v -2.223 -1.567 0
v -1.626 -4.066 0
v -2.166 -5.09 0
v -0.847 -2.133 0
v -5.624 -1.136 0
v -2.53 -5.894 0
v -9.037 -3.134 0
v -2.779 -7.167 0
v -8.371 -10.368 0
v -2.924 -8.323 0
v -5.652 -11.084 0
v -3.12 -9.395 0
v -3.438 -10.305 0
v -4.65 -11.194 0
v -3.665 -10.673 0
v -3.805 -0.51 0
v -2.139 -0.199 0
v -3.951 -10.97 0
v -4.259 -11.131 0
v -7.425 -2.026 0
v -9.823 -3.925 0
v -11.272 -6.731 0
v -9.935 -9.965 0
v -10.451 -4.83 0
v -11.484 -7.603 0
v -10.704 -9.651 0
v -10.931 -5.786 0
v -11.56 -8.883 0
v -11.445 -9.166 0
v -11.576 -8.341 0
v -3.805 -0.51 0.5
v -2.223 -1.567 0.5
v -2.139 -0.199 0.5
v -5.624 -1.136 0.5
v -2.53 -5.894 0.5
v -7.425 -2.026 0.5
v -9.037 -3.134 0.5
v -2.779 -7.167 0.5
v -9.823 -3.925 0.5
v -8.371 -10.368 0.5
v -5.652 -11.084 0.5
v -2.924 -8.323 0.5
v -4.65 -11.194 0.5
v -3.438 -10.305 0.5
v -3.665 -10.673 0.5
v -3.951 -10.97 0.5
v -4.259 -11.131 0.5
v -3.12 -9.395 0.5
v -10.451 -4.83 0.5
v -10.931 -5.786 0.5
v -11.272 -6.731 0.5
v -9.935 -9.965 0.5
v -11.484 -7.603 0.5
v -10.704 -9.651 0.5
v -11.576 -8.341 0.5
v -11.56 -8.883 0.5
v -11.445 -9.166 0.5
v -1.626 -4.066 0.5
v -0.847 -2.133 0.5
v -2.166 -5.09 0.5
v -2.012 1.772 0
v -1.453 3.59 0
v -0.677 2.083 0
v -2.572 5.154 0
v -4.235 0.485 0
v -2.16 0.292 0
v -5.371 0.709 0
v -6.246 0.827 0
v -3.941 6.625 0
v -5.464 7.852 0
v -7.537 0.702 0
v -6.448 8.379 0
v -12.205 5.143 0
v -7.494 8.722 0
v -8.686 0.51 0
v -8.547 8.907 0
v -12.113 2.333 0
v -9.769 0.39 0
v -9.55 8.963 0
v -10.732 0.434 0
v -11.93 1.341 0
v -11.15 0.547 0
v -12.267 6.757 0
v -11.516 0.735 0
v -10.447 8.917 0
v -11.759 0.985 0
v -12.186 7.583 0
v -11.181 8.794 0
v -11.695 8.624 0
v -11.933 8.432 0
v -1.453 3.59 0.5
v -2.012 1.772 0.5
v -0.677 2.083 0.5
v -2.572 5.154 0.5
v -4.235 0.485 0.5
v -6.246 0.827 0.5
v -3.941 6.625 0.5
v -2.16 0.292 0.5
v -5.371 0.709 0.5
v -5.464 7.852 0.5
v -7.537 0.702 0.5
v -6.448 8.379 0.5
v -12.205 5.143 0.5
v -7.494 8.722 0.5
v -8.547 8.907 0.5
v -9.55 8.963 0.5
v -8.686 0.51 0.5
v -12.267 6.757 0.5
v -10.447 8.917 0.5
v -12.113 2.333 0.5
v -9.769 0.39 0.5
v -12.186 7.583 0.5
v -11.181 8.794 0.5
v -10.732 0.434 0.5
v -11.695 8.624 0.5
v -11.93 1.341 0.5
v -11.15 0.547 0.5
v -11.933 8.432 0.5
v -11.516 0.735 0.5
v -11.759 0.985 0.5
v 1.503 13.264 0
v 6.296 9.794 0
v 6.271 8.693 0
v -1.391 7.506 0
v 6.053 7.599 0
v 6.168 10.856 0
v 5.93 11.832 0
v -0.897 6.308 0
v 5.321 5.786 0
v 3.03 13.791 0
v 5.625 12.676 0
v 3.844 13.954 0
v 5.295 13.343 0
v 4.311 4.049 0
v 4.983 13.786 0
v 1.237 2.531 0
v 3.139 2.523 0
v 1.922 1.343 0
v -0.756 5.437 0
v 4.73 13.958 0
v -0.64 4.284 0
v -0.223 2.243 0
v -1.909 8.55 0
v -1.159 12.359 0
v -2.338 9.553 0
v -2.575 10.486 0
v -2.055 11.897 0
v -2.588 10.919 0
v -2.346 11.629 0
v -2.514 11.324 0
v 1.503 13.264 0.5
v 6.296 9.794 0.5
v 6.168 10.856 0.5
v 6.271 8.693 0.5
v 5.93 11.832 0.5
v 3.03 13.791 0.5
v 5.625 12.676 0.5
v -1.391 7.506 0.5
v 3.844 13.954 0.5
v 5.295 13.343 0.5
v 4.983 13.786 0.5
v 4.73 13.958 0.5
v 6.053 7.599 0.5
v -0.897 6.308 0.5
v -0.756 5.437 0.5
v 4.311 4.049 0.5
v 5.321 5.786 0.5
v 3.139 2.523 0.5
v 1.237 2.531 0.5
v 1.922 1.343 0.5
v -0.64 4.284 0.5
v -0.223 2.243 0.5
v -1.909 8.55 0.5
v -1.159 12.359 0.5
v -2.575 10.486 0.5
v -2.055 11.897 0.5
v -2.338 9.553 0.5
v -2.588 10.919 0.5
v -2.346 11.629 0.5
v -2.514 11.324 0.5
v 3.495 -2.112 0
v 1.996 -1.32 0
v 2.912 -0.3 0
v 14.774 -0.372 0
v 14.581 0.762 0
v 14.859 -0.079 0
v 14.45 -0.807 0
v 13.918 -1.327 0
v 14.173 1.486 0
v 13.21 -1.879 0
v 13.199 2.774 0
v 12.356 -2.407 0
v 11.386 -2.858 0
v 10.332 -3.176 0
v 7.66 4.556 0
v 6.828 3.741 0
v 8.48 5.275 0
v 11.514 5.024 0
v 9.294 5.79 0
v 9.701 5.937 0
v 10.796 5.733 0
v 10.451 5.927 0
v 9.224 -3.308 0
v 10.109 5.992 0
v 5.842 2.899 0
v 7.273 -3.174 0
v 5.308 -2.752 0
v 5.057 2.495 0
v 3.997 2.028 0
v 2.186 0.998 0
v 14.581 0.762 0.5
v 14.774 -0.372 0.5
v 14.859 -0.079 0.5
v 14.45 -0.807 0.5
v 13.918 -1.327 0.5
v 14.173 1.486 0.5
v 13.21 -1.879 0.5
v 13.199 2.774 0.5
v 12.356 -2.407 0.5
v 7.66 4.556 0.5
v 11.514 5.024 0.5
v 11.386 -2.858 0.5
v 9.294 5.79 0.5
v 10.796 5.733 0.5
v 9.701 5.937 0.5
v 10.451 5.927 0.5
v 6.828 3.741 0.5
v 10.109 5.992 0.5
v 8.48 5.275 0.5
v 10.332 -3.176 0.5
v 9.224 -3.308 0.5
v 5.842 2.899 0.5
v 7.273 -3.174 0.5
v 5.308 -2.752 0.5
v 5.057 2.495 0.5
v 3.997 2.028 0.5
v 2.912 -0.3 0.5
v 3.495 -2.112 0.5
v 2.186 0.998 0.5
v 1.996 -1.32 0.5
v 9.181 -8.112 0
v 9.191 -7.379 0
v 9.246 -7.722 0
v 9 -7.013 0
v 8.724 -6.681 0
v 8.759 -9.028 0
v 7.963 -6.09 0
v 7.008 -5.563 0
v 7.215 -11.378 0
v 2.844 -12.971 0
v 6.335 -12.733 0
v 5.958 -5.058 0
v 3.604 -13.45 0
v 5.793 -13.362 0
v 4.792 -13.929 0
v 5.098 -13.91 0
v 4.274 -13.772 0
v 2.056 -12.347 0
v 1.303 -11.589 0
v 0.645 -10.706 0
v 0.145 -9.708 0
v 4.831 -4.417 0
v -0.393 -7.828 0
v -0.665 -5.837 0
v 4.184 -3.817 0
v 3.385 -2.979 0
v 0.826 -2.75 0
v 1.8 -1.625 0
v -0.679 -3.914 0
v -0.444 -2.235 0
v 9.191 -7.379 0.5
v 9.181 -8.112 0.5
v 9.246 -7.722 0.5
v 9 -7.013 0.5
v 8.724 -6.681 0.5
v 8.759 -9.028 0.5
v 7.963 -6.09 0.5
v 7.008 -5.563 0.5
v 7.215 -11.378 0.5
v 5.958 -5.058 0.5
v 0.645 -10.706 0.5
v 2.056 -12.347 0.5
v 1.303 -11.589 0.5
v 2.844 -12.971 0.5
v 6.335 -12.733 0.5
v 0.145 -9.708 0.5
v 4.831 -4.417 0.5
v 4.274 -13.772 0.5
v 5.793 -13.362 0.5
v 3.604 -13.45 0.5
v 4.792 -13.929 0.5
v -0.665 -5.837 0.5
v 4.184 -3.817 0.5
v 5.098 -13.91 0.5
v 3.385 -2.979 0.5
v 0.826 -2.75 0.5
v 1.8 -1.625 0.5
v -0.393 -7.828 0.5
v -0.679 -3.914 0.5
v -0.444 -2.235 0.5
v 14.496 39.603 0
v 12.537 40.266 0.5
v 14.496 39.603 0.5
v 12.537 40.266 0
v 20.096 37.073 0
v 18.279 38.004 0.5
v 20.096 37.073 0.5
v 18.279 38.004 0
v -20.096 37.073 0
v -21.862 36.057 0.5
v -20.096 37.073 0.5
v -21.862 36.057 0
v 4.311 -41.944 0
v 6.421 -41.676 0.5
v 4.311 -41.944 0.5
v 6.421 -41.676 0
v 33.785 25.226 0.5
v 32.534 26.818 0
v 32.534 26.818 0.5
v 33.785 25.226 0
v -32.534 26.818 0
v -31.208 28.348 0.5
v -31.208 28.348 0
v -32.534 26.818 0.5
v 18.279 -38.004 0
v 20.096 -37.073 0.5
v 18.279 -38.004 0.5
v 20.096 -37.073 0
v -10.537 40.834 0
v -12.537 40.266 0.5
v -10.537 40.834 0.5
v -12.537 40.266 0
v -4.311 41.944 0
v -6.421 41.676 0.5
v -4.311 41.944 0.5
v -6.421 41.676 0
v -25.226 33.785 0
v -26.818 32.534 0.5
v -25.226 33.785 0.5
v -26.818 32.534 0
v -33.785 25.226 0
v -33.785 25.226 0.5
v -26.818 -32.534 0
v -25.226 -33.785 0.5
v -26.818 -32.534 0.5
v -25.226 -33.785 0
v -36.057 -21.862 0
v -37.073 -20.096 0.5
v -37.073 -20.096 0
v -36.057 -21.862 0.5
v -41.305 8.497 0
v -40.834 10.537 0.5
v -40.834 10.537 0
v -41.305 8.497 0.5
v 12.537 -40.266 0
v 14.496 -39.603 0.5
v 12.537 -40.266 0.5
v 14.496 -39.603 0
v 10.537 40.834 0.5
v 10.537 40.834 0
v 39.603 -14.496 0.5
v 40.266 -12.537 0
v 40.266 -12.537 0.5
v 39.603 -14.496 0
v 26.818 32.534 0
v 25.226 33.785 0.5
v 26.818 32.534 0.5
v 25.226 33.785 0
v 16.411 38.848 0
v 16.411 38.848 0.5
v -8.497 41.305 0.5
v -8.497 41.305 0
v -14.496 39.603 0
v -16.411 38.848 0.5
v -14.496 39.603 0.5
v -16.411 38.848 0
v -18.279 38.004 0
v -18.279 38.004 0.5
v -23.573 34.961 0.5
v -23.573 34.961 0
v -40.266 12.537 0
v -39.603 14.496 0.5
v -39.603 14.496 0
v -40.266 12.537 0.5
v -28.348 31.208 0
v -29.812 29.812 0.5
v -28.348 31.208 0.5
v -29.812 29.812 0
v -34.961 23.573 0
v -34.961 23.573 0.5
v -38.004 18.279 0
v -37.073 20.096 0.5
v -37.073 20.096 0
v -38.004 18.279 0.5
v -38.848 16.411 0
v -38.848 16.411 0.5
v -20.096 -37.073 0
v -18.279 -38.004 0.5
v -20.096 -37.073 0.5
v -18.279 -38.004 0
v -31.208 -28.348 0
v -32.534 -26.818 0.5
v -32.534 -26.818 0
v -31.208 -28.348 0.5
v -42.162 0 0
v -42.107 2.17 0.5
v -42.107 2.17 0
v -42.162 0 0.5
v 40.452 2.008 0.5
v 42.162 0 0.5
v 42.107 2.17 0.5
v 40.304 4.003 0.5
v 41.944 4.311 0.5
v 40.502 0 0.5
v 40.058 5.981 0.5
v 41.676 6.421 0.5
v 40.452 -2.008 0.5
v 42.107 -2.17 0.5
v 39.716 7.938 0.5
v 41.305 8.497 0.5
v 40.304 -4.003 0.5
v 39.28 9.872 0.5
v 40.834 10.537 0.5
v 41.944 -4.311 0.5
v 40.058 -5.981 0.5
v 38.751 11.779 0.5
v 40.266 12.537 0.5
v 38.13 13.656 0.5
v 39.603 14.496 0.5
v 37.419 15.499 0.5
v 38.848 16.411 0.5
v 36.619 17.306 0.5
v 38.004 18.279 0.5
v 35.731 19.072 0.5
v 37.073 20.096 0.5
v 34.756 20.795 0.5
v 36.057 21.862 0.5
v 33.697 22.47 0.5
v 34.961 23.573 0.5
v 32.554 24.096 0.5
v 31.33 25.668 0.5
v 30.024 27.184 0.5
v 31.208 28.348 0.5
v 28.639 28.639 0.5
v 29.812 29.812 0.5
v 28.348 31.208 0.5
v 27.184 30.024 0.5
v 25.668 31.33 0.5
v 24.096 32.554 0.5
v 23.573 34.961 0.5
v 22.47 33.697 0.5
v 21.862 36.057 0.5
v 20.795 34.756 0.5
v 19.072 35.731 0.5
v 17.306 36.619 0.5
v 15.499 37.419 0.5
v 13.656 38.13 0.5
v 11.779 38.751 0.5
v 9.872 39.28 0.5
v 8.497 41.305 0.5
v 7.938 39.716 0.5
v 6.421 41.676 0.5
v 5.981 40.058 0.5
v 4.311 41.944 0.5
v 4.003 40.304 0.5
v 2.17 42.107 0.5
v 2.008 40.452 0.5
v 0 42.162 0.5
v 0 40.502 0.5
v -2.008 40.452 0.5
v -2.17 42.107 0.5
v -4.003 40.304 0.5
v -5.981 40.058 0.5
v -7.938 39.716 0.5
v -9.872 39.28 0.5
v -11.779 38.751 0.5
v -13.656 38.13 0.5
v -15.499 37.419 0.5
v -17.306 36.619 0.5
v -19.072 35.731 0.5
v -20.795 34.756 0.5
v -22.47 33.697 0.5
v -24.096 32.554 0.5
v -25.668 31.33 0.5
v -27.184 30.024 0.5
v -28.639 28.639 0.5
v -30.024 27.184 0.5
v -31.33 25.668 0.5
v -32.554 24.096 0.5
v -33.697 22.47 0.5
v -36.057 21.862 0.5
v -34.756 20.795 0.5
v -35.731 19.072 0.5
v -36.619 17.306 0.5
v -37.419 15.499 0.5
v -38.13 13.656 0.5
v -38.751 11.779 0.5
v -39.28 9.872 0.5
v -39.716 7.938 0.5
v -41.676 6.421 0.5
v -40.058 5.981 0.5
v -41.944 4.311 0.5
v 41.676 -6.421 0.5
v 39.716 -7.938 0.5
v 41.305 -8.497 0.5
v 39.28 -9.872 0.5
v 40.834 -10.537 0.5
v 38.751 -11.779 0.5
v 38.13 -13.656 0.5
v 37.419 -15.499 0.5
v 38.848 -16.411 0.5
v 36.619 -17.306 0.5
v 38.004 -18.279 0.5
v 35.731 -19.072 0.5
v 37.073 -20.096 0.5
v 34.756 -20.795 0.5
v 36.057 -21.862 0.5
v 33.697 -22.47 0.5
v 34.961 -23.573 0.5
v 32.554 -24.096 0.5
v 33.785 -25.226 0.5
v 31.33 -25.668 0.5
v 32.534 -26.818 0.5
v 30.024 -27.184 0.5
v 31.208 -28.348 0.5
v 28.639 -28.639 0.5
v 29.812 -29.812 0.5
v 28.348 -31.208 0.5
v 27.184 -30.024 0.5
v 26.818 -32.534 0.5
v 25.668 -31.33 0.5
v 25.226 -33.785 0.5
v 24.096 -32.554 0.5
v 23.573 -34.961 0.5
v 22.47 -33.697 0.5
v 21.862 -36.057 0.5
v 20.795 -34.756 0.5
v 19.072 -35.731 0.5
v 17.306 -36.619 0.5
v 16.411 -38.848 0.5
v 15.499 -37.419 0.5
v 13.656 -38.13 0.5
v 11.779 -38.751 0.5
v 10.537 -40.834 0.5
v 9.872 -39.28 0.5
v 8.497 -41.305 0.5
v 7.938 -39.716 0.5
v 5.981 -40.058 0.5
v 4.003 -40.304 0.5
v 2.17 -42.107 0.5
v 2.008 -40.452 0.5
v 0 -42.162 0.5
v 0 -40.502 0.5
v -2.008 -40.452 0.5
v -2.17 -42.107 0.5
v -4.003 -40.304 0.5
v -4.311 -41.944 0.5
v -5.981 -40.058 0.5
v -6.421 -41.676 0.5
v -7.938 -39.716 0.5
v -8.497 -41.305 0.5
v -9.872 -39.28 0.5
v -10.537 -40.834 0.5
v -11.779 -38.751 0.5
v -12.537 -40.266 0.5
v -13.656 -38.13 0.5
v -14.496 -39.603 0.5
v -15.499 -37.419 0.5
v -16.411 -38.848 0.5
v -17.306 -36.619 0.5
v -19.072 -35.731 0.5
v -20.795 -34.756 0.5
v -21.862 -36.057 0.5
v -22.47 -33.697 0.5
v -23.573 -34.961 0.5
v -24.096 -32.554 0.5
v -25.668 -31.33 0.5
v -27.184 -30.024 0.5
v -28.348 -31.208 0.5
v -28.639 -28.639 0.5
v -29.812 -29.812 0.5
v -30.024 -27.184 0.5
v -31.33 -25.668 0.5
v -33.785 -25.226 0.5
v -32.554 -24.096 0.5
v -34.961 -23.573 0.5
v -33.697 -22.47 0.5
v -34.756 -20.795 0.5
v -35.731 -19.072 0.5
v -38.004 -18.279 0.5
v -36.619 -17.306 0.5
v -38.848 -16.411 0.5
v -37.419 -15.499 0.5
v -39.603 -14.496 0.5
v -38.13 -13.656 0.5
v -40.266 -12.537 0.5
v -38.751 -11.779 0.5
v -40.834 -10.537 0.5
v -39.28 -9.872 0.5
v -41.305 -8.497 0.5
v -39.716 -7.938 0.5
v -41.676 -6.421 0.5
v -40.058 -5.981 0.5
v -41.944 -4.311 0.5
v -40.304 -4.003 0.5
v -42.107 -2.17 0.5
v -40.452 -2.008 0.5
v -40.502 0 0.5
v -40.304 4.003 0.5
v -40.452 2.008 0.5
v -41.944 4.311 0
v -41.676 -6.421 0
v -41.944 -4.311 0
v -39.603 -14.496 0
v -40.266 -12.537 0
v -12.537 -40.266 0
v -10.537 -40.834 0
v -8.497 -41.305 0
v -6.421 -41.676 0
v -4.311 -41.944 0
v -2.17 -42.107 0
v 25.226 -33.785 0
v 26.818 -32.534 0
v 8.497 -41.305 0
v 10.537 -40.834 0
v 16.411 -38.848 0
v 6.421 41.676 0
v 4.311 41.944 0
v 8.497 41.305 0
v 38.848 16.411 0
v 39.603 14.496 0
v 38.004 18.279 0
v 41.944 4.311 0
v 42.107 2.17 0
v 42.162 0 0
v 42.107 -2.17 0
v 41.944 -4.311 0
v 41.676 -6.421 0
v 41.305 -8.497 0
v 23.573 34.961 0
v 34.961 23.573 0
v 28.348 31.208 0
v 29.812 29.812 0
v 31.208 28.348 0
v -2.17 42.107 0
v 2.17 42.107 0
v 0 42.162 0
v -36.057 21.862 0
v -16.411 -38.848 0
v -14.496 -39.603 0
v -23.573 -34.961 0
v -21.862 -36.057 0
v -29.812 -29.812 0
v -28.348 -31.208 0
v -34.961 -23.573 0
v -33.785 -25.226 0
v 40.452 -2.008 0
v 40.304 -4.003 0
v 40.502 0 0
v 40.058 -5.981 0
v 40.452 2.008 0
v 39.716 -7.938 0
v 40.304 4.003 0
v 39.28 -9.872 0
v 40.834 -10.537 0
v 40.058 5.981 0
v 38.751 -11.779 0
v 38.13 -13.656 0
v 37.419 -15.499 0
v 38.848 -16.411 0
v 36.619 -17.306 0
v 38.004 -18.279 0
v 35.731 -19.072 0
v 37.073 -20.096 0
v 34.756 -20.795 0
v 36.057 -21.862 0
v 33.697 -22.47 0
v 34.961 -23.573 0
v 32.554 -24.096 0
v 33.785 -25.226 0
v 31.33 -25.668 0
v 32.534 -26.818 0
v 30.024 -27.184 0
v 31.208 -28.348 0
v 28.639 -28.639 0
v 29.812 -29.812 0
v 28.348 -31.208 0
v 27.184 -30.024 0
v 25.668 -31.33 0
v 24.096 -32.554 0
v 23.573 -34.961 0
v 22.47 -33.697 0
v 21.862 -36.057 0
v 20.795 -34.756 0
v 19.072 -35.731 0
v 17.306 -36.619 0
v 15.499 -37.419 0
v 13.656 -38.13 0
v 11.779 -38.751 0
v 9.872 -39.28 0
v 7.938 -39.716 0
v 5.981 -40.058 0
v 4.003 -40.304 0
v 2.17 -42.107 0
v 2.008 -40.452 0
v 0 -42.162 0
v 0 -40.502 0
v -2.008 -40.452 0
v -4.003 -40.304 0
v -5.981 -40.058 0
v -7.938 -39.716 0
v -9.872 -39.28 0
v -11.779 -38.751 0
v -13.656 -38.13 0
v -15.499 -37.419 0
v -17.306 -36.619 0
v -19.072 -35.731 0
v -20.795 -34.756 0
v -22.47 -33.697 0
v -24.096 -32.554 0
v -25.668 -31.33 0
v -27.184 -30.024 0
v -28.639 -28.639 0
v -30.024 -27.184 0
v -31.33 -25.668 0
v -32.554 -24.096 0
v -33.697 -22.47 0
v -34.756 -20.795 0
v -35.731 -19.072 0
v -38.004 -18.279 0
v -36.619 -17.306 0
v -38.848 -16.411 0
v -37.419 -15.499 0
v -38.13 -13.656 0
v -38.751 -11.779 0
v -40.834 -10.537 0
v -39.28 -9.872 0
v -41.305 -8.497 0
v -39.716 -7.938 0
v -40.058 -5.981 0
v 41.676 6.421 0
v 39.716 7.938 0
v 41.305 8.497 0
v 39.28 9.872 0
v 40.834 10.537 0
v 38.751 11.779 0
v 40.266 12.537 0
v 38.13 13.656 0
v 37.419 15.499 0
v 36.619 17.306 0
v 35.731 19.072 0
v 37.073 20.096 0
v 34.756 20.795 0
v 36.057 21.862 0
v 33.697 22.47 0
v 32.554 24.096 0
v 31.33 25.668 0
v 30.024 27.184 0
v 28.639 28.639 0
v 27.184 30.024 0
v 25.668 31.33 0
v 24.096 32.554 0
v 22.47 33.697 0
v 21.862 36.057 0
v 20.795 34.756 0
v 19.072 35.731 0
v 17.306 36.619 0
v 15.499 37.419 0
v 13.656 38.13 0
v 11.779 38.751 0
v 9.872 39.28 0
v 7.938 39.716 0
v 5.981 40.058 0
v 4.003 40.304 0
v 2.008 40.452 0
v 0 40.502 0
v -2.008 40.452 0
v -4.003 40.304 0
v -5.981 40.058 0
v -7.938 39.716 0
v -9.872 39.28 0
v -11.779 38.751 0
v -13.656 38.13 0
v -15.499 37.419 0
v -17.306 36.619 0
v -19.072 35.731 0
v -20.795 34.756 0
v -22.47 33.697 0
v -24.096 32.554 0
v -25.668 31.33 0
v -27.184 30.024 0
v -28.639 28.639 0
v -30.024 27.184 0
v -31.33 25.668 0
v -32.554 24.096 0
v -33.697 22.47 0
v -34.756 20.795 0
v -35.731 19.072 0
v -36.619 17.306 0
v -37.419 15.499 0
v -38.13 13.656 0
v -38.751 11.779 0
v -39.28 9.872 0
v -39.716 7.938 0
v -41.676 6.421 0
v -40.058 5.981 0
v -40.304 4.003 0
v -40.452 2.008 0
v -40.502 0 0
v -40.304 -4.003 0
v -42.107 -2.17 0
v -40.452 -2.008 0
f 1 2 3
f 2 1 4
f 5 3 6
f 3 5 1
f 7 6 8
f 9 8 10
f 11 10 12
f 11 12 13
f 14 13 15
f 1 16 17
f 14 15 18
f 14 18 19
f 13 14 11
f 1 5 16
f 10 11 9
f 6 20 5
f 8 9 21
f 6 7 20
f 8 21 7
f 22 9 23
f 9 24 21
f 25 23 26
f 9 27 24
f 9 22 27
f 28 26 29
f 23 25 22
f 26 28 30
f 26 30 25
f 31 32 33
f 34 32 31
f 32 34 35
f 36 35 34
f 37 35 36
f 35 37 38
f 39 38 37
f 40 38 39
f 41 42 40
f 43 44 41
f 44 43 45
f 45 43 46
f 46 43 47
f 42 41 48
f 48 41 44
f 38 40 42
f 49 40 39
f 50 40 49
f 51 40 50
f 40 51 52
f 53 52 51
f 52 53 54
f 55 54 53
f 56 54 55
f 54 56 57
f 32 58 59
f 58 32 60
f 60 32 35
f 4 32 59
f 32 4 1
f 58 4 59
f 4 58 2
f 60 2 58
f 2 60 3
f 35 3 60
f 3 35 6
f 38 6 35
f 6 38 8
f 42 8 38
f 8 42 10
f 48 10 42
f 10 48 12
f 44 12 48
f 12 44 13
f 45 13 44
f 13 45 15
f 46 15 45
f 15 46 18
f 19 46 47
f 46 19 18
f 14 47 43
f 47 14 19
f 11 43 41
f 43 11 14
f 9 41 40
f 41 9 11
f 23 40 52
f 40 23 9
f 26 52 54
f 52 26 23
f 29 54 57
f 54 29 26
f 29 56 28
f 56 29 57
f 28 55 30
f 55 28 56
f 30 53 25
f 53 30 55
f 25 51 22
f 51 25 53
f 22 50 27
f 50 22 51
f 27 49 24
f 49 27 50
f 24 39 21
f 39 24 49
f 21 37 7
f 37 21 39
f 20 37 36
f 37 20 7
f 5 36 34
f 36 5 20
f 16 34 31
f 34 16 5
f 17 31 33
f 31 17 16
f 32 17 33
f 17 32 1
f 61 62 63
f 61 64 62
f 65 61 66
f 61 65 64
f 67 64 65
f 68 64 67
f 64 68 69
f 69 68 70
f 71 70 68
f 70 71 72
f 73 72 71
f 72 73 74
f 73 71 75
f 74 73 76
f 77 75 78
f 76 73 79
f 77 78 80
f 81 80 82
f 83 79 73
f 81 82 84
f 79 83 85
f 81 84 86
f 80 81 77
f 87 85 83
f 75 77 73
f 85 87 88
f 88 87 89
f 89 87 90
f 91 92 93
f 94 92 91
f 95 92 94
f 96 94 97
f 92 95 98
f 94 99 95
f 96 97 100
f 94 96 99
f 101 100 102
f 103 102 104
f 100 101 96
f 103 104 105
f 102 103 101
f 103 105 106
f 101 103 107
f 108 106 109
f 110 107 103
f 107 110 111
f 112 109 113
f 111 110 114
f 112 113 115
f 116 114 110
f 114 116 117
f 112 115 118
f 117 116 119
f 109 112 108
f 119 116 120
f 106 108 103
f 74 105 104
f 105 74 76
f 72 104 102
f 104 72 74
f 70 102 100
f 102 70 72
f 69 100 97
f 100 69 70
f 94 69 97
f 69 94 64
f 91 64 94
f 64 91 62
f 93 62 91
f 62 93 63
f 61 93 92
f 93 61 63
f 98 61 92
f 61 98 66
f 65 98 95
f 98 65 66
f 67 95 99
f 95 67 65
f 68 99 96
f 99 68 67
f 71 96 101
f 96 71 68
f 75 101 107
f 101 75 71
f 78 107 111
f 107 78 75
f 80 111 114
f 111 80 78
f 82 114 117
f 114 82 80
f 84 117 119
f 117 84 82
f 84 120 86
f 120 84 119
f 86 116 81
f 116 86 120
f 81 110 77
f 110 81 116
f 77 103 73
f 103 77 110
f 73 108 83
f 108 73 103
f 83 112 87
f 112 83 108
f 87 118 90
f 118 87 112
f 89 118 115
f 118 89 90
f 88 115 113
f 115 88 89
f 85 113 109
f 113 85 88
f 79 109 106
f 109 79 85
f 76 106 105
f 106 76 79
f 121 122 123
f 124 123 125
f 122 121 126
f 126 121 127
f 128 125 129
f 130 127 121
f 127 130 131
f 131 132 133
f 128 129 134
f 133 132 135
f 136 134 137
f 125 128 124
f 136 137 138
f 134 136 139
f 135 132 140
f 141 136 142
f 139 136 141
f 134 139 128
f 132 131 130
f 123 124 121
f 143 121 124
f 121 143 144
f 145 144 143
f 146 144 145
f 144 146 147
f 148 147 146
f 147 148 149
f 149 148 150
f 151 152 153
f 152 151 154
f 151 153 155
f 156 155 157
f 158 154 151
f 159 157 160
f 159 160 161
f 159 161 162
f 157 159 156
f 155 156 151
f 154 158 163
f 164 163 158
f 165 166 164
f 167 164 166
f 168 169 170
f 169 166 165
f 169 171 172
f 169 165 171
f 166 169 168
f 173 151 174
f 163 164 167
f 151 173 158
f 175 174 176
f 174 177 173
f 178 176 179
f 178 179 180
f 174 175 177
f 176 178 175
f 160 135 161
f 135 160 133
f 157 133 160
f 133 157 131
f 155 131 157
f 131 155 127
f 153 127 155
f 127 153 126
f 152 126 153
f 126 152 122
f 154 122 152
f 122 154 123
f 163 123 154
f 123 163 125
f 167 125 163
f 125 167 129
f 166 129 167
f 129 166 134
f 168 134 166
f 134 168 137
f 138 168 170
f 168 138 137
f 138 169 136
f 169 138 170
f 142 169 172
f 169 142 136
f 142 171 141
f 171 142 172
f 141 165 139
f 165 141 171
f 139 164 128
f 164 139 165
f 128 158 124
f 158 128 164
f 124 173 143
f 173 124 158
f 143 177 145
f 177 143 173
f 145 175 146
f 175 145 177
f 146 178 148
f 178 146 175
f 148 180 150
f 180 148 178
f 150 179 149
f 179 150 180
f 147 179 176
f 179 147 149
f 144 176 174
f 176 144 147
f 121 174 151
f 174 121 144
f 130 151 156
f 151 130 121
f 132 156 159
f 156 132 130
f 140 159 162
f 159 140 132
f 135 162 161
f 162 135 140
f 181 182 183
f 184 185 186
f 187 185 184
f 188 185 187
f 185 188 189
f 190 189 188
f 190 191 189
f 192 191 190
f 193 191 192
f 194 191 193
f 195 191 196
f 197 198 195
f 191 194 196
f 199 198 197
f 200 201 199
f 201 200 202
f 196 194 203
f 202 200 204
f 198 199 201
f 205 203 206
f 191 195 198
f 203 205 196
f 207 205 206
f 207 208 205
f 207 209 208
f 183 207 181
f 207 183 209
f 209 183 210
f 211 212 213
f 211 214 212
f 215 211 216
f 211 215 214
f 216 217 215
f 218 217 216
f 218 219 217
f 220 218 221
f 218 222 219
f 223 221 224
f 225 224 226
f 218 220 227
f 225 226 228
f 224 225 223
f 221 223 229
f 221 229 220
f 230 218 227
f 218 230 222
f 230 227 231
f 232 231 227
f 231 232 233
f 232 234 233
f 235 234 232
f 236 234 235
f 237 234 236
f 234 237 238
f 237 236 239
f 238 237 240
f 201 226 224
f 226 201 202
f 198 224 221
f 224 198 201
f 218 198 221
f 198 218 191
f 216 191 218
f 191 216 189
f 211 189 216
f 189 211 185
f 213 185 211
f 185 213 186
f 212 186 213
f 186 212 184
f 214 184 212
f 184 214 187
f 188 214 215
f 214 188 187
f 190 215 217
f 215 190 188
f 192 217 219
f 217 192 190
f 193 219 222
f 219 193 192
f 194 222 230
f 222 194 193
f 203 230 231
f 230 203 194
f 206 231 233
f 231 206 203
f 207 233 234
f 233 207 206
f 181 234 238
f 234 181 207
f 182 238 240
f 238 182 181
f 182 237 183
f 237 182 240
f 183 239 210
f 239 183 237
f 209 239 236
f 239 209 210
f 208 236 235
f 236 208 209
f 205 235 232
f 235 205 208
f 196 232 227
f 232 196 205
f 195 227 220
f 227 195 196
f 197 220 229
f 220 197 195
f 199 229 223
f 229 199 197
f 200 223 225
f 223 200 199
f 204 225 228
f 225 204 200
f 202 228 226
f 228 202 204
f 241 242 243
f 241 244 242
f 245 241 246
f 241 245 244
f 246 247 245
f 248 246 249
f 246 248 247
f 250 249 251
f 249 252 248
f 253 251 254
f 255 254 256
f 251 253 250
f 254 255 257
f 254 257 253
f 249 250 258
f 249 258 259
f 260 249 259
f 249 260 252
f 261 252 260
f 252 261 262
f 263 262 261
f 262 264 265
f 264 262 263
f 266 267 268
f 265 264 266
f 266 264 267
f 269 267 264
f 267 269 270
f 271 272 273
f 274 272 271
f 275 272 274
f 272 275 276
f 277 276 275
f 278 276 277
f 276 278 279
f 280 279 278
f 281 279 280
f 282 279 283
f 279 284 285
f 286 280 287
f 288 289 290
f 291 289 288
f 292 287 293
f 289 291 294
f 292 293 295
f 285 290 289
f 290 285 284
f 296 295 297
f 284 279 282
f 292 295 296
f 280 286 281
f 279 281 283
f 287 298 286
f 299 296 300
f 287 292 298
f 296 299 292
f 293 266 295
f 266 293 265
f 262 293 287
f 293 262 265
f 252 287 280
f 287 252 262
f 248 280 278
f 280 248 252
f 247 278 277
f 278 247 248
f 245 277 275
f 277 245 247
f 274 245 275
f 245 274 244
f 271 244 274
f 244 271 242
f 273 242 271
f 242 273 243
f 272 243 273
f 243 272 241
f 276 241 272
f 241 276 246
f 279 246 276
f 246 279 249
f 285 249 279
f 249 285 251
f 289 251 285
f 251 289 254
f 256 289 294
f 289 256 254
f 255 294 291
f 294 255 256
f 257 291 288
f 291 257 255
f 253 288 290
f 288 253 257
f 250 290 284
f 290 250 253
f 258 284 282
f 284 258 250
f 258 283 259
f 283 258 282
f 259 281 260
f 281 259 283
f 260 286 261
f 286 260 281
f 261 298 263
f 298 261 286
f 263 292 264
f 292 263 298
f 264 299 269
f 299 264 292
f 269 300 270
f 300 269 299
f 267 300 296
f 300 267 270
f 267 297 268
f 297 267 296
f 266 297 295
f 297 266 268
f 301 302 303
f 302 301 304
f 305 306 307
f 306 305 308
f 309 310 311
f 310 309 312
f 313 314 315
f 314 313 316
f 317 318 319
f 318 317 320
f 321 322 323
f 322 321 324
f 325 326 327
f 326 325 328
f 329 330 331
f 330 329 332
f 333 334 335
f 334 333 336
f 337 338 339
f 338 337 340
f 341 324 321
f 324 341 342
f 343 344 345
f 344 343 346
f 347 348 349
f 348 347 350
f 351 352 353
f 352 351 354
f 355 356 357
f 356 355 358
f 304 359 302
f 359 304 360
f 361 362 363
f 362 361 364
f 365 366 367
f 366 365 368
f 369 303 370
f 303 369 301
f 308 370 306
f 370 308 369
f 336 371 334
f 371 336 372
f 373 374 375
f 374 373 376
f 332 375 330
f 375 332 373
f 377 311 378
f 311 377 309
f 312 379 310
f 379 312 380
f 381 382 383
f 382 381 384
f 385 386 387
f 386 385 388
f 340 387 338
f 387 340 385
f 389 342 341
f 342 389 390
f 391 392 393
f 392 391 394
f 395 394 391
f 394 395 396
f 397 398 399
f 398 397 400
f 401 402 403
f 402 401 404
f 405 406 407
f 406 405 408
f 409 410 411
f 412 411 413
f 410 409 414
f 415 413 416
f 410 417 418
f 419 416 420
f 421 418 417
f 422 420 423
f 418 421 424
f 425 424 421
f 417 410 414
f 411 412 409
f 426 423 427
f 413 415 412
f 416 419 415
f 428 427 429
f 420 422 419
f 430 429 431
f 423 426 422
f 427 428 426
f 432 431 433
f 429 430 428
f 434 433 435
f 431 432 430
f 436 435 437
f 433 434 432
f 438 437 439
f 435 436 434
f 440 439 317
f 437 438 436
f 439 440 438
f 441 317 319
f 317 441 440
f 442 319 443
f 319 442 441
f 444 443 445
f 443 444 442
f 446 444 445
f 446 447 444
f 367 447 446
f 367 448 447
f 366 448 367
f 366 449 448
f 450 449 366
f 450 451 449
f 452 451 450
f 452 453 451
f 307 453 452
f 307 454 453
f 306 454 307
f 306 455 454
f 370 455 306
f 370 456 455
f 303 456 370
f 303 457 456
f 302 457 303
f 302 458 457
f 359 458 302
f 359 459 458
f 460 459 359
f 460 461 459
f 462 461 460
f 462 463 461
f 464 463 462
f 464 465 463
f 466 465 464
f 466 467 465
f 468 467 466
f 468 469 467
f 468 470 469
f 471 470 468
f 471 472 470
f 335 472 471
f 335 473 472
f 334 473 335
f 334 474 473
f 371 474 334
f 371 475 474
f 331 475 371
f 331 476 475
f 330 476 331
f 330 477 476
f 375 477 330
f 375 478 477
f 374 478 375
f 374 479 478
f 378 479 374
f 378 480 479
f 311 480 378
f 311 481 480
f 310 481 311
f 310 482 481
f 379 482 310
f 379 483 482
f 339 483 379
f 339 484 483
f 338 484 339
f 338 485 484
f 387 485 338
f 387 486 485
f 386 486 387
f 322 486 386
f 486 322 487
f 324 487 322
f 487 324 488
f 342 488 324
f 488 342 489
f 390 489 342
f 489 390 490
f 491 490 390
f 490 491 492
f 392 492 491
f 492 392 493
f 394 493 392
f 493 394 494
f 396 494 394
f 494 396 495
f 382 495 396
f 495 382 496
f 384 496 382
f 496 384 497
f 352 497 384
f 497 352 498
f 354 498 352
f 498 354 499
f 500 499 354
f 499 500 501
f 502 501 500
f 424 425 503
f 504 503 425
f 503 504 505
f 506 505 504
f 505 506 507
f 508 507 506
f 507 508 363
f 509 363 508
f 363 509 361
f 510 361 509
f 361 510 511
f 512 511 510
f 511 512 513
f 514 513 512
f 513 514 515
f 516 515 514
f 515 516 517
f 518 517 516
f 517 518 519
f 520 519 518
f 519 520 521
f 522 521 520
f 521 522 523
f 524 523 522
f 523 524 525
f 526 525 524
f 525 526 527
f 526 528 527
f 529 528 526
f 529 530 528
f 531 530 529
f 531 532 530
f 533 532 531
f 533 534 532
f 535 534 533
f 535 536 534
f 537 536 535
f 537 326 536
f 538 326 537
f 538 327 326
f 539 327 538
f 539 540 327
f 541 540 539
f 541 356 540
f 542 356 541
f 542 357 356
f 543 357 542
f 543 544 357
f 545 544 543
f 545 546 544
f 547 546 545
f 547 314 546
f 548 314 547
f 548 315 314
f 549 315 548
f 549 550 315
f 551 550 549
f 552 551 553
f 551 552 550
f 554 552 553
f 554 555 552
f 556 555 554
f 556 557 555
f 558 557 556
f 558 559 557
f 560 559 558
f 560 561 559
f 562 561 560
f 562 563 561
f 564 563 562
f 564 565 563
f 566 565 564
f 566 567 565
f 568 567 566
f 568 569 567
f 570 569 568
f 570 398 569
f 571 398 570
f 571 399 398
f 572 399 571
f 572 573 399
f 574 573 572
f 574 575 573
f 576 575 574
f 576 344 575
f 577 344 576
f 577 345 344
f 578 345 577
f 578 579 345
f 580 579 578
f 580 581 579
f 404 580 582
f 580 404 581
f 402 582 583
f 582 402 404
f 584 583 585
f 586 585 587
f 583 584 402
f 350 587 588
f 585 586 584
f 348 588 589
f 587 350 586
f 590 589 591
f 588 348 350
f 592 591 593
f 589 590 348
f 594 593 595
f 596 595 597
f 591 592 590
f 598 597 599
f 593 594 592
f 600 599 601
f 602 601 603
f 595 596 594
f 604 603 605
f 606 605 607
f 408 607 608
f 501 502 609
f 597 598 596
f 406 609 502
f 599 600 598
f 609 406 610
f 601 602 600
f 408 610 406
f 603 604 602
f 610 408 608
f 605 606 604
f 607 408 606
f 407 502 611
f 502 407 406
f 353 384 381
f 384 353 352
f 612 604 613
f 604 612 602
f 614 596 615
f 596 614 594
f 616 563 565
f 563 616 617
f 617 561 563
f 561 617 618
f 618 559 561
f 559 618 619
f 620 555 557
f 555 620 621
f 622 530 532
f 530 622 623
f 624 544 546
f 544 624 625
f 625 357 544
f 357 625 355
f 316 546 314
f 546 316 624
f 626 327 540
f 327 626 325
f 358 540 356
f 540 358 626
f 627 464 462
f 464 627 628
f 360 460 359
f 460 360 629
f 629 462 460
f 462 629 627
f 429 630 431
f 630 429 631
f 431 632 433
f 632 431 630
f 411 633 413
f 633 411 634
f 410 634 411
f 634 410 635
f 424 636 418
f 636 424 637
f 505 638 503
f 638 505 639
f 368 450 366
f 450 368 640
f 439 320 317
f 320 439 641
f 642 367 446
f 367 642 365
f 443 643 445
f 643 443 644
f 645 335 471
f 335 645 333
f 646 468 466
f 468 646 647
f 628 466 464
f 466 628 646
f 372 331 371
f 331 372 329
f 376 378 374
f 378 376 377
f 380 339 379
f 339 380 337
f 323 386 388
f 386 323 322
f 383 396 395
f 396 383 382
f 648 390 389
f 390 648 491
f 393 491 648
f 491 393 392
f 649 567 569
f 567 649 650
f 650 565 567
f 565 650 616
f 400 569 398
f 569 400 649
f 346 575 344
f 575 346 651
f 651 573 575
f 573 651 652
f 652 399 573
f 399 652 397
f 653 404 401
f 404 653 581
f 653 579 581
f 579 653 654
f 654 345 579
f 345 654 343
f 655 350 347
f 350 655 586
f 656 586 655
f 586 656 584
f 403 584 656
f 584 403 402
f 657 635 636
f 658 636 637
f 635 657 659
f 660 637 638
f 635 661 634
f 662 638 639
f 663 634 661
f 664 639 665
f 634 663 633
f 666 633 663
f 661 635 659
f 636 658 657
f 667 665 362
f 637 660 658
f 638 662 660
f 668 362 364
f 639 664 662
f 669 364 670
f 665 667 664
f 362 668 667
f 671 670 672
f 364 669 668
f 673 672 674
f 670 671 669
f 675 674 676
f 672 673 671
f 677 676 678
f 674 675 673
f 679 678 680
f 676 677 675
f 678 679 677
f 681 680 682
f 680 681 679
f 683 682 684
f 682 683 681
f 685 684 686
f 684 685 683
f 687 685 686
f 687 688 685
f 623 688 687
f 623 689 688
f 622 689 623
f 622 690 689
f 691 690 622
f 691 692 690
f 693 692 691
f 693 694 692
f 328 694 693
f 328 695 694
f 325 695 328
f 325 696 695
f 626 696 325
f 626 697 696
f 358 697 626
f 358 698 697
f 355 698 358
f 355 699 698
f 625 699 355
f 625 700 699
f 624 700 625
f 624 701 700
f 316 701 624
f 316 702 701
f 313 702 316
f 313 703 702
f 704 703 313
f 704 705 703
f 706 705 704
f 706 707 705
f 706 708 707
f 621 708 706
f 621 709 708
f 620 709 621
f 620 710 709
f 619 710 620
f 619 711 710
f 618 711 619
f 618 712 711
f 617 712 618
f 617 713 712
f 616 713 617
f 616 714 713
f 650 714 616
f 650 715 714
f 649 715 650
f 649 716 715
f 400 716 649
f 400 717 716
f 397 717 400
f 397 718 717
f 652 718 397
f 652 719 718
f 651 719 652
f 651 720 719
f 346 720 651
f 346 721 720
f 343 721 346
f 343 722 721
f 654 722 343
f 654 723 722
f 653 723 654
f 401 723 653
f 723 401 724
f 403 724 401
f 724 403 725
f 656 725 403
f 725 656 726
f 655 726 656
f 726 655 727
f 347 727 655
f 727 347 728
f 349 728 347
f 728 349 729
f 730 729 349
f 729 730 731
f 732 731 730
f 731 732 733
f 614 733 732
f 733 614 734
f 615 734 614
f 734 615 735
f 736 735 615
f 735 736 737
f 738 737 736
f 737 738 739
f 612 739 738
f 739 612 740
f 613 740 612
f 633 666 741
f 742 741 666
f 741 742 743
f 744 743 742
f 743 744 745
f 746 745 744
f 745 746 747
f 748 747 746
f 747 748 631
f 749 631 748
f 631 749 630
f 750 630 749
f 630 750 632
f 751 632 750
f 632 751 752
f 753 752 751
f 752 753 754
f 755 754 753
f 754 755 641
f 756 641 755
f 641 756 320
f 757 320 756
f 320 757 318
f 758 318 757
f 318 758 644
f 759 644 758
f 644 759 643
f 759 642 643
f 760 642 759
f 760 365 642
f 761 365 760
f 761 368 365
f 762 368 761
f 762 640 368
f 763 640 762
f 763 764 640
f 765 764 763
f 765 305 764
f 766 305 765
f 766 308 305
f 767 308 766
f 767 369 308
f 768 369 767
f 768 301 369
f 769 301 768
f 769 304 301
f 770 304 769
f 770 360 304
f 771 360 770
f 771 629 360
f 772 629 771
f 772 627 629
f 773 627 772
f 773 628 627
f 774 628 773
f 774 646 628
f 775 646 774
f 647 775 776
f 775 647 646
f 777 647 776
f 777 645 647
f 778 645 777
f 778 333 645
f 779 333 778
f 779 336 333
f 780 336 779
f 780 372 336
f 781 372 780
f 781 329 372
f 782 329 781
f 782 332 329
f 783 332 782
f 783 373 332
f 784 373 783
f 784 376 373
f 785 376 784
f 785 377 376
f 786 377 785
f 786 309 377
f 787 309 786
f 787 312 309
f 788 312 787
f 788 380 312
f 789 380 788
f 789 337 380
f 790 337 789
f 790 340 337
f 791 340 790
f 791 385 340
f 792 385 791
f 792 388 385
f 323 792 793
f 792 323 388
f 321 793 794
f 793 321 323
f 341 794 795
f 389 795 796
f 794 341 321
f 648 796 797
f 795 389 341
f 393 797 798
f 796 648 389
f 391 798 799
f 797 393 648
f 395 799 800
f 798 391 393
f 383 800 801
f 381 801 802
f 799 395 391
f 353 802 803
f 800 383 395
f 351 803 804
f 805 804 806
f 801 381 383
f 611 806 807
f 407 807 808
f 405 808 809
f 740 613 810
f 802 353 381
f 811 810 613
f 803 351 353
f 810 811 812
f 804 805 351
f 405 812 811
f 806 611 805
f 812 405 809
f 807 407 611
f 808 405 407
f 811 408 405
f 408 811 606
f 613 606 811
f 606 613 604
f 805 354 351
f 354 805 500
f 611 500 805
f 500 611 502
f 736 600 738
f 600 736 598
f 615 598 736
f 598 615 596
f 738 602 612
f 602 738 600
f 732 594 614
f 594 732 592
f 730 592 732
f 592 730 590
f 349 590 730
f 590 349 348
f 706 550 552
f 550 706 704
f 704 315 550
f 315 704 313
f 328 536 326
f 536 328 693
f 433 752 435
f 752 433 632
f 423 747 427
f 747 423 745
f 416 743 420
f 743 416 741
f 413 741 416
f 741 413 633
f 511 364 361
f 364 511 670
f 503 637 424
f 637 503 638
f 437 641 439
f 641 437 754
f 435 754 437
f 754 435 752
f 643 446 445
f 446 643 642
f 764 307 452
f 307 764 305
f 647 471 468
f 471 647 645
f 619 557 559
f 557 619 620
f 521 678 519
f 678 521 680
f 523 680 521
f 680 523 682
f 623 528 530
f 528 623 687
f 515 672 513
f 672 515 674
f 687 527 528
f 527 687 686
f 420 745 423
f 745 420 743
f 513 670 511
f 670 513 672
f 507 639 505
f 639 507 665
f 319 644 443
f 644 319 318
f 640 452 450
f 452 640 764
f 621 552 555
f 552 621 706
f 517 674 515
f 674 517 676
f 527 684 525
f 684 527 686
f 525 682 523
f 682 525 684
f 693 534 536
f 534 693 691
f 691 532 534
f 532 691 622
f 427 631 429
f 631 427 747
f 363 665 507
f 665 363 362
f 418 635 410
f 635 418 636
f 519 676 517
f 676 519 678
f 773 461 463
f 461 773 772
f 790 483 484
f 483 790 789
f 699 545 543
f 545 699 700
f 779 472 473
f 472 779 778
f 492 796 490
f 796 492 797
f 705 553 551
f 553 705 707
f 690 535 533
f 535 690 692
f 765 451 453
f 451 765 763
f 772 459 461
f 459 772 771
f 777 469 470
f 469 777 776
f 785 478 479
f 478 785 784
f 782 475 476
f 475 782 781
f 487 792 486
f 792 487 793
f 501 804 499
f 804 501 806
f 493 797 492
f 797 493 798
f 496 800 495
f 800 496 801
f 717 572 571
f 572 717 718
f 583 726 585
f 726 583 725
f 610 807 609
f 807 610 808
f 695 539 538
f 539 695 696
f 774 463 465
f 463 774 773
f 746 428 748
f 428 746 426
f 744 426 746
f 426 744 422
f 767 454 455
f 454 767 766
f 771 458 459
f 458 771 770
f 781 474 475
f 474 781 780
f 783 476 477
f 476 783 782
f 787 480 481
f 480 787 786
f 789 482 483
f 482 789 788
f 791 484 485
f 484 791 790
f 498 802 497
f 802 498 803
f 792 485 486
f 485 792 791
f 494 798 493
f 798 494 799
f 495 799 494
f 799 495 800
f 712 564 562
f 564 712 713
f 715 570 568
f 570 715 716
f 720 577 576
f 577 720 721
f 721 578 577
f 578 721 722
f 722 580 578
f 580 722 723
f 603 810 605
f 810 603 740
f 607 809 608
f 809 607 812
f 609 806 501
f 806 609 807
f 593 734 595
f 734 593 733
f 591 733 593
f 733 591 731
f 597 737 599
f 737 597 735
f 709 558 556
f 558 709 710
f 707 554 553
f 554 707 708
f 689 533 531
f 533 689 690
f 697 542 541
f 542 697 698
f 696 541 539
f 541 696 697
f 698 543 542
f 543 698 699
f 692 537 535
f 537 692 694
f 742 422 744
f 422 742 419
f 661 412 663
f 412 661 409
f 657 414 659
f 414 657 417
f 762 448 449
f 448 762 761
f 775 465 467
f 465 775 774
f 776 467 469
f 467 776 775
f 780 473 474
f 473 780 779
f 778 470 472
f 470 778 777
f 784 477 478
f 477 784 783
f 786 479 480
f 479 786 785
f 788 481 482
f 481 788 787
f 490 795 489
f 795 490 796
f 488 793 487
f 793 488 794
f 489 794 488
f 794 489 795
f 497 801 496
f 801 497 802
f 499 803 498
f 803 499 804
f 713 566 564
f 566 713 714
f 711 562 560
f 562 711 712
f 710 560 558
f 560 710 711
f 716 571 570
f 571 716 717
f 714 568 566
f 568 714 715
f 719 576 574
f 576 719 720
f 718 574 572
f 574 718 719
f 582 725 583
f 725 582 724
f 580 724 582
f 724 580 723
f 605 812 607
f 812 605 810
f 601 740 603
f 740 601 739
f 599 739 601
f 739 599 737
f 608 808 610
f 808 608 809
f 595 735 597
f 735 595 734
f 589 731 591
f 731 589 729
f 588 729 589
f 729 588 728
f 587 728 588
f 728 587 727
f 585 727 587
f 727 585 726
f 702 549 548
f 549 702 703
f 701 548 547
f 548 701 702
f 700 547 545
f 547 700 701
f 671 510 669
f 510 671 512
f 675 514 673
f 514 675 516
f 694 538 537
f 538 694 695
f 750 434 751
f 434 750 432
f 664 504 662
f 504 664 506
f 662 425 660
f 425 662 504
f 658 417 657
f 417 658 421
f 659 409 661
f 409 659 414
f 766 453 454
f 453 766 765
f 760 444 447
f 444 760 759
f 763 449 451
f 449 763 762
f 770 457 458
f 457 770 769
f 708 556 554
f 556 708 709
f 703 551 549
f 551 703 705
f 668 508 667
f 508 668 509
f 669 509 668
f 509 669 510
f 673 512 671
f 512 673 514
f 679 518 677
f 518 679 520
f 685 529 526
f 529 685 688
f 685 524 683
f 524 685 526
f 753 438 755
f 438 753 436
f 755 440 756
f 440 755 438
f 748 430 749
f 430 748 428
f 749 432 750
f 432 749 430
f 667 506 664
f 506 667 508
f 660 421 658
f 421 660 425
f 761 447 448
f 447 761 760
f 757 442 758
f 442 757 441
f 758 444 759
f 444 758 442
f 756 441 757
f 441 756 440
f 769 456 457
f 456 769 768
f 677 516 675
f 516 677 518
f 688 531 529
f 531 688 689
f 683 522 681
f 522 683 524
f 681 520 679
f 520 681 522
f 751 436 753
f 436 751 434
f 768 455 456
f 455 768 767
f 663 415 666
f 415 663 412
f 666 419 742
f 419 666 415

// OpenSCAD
// Module names are of the form poly_<inkscape-path-id>().  As a result,
// you can associate a polygon in this OpenSCAD program with the corresponding
// SVG element in the Inkscape document by looking for the XML element with
// the attribute id="inkscape-path-id".

// fudge value is used to ensure that subtracted solids are a tad taller
// in the z dimension than the polygon being subtracted from.  This helps
// keep the resulting .stl file manifold.
fudge = 0.1;

module poly_path4152(h)
{
  scale([25.4/90, -25.4/90, 1]) union()
  {
    difference()
    {
       linear_extrude(height=h)
         polygon([[0.000000,-149.391276],[-7.687572,-149.196701],[-15.274222,-148.619627],[-22.750565,-147.669443],[-30.107214,-146.355532],[-37.334784,-144.687282],[-44.423888,-142.674078],[-51.365142,-140.325306],[-58.149158,-137.650352],[-64.766552,-134.658601],[-71.207937,-131.359440],[-77.463928,-127.762254],[-83.525139,-123.876430],[-89.382183,-119.711352],[-95.025675,-115.276408],[-100.446230,-110.580982],[-105.634461,-105.634461],[-110.580982,-100.446230],[-115.276408,-95.025675],[-119.711352,-89.382183],[-123.876430,-83.525139],[-127.762254,-77.463928],[-131.359440,-71.207937],[-134.658601,-64.766552],[-137.650352,-58.149158],[-140.325306,-51.365142],[-142.674078,-44.423888],[-144.687282,-37.334784],[-146.355532,-30.107214],[-147.669443,-22.750565],[-148.619627,-15.274222],[-149.196701,-7.687572],[-149.391276,-0.000000],[-149.196701,7.687572],[-148.619627,15.274222],[-147.669443,22.750565],[-146.355532,30.107214],[-144.687282,37.334784],[-142.674078,44.423888],[-140.325306,51.365142],[-137.650352,58.149158],[-134.658601,64.766552],[-131.359440,71.207937],[-127.762254,77.463928],[-123.876430,83.525139],[-119.711352,89.382183],[-115.276408,95.025675],[-110.580982,100.446230],[-105.634461,105.634461],[-100.446230,110.580982],[-95.025675,115.276408],[-89.382183,119.711352],[-83.525139,123.876430],[-77.463928,127.762254],[-71.207937,131.359440],[-64.766552,134.658601],[-58.149158,137.650352],[-51.365142,140.325306],[-44.423888,142.674078],[-37.334784,144.687282],[-30.107214,146.355532],[-22.750565,147.669443],[-15.274222,148.619627],[-7.687572,149.196701],[0.000000,149.391276],[7.687572,149.196701],[15.274222,148.619627],[22.750565,147.669443],[30.107214,146.355532],[37.334784,144.687282],[44.423888,142.674078],[51.365142,140.325306],[58.149158,137.650352],[64.766552,134.658601],[71.207937,131.359440],[77.463928,127.762254],[83.525139,123.876430],[89.382183,119.711352],[95.025675,115.276408],[100.446230,110.580982],[105.634461,105.634461],[110.580982,100.446230],[115.276408,95.025675],[119.711352,89.382183],[123.876430,83.525139],[127.762254,77.463928],[131.359440,71.207937],[134.658601,64.766552],[137.650352,58.149158],[140.325306,51.365142],[142.674078,44.423888],[144.687282,37.334784],[146.355532,30.107214],[147.669443,22.750565],[148.619627,15.274222],[149.196701,7.687572],[149.391276,0.000000],[149.196701,-7.687572],[148.619627,-15.274222],[147.669443,-22.750565],[146.355532,-30.107214],[144.687282,-37.334784],[142.674078,-44.423888],[140.325306,-51.365142],[137.650352,-58.149158],[134.658601,-64.766552],[131.359440,-71.207937],[127.762254,-77.463928],[123.876430,-83.525139],[119.711352,-89.382183],[115.276408,-95.025675],[110.580982,-100.446230],[105.634461,-105.634461],[100.446230,-110.580982],[95.025675,-115.276408],[89.382183,-119.711352],[83.525139,-123.876430],[77.463928,-127.762254],[71.207937,-131.359440],[64.766552,-134.658601],[58.149158,-137.650352],[51.365142,-140.325306],[44.423888,-142.674078],[37.334784,-144.687282],[30.107214,-146.355532],[22.750565,-147.669443],[15.274222,-148.619627],[7.687572,-149.196701],[0.000000,-149.391276],[0.000000,-149.391276]]);
       translate([0, 0, -fudge])
         linear_extrude(height=h+2*fudge)
           polygon([[0.000000,-143.510640],[7.116294,-143.334304],[14.184290,-142.808466],[21.192224,-141.937999],[28.128334,-140.727775],[34.980857,-139.182666],[41.738028,-137.307544],[48.388086,-135.107283],[54.919267,-132.586754],[61.319808,-129.750830],[67.577946,-126.604383],[73.681918,-123.152286],[79.619961,-119.399411],[85.380311,-115.350630],[90.951206,-111.010816],[96.320883,-106.384841],[101.477578,-101.477578],[106.384841,-96.320883],[111.010816,-90.951206],[115.350630,-85.380311],[119.399411,-79.619961],[123.152286,-73.681918],[126.604383,-67.577946],[129.750830,-61.319808],[132.586754,-54.919267],[135.107283,-48.388086],[137.307544,-41.738028],[139.182666,-34.980857],[140.727775,-28.128334],[141.937999,-21.192224],[142.808466,-14.184290],[143.334304,-7.116294],[143.510640,-0.000000],[143.334304,7.116294],[142.808466,14.184290],[141.937999,21.192224],[140.727775,28.128334],[139.182666,34.980857],[137.307544,41.738028],[135.107283,48.388086],[132.586754,54.919267],[129.750830,61.319808],[126.604383,67.577946],[123.152286,73.681918],[119.399411,79.619961],[115.350630,85.380311],[111.010816,90.951206],[106.384841,96.320883],[101.477578,101.477578],[96.320883,106.384841],[90.951206,111.010816],[85.380311,115.350630],[79.619961,119.399411],[73.681918,123.152286],[67.577946,126.604383],[61.319808,129.750830],[54.919267,132.586754],[48.388086,135.107283],[41.738028,137.307544],[34.980857,139.182666],[28.128334,140.727775],[21.192224,141.937999],[14.184290,142.808466],[7.116294,143.334304],[0.000000,143.510640],[-7.116294,143.334304],[-14.184290,142.808466],[-21.192224,141.937999],[-28.128334,140.727775],[-34.980857,139.182666],[-41.738028,137.307544],[-48.388086,135.107283],[-54.919267,132.586754],[-61.319808,129.750830],[-67.577946,126.604383],[-73.681918,123.152286],[-79.619961,119.399411],[-85.380311,115.350630],[-90.951206,111.010816],[-96.320883,106.384841],[-101.477578,101.477578],[-106.384841,96.320883],[-111.010816,90.951206],[-115.350630,85.380311],[-119.399411,79.619961],[-123.152286,73.681918],[-126.604383,67.577946],[-129.750830,61.319808],[-132.586754,54.919267],[-135.107283,48.388086],[-137.307544,41.738028],[-139.182666,34.980857],[-140.727775,28.128334],[-141.937999,21.192224],[-142.808466,14.184290],[-143.334304,7.116294],[-143.510640,0.000000],[-143.334304,-7.116294],[-142.808466,-14.184290],[-141.937999,-21.192224],[-140.727775,-28.128334],[-139.182666,-34.980857],[-137.307544,-41.738028],[-135.107283,-48.388086],[-132.586754,-54.919267],[-129.750830,-61.319808],[-126.604383,-67.577946],[-123.152286,-73.681918],[-119.399411,-79.619961],[-115.350630,-85.380311],[-111.010816,-90.951206],[-106.384841,-96.320883],[-101.477578,-101.477578],[-96.320883,-106.384841],[-90.951206,-111.010816],[-85.380311,-115.350630],[-79.619961,-119.399411],[-73.681918,-123.152286],[-67.577946,-126.604383],[-61.319808,-129.750830],[-54.919267,-132.586754],[-48.388086,-135.107283],[-41.738028,-137.307544],[-34.980857,-139.182666],[-28.128334,-140.727775],[-21.192224,-141.937999],[-14.184290,-142.808466],[-7.116294,-143.334304],[0.000000,-143.510640]]);
    }
  }
}

module poly_path42826(h)
{
  scale([25.4/90, -25.4/90, 1]) union()
  {
    linear_extrude(height=h)
      polygon([[-7.577470,0.705521],[-13.481836,1.808557],[-19.927727,4.023791],[-26.308966,7.179586],[-32.019376,11.104303],[-34.806391,13.908751],[-37.032001,17.113885],[-38.731137,20.500396],[-39.938732,23.848977],[-40.689717,26.940320],[-41.019023,29.555116],[-40.961584,31.474059],[-40.552330,32.477840],[-37.927361,34.198079],[-35.203540,35.309537],[-29.661628,36.738548],[-20.027032,39.275786],[-16.475282,39.662934],[-15.091636,39.441728],[-13.998369,38.869940],[-12.987040,37.817232],[-12.180431,36.512744],[-11.053346,33.290962],[-10.361059,29.489657],[-9.847516,25.393891],[-8.963604,20.885843],[-7.675288,18.036326],[-5.761408,14.406466],[-3.000807,7.557391],[-7.877319,5.553679]]);
    linear_extrude(height=h)
      polygon([[-2.399507,-7.379943],[-5.146902,-12.721304],[-9.114980,-18.263074],[-13.965728,-23.473596],[-19.361135,-27.821217],[-22.846146,-29.688578],[-26.554328,-30.903315],[-30.285556,-31.561691],[-33.839704,-31.759966],[-37.016647,-31.594401],[-39.616262,-31.161257],[-41.438422,-30.556795],[-42.283003,-29.877277],[-43.179648,-26.869658],[-43.464691,-23.941642],[-43.247118,-18.222597],[-42.919557,-8.264899],[-42.273560,-4.750996],[-41.665450,-3.488614],[-40.804577,-2.604834],[-39.506377,-1.937254],[-38.025556,-1.537912],[-34.615953,-1.380464],[-30.775579,-1.805542],[-26.704241,-2.486199],[-22.131849,-2.930043],[-19.032761,-2.511539],[-15.006888,-1.717083],[-7.654137,-1.033072],[-7.130543,-6.279131]]);
    linear_extrude(height=h)
      polygon([[6.809606,-4.760398],[11.123329,-8.940144],[15.274445,-14.346173],[18.852327,-20.500684],[21.446348,-26.925881],[22.221539,-30.802925],[22.307425,-34.704060],[21.854222,-38.465727],[21.012142,-41.924367],[19.931398,-44.916420],[18.762206,-47.278328],[17.654777,-48.846531],[16.759326,-49.457470],[13.620941,-49.442341],[10.736280,-48.865064],[5.326701,-46.996541],[-4.107047,-43.792264],[-7.282071,-42.153974],[-8.313537,-41.205558],[-8.909323,-40.125155],[-9.171265,-38.689058],[-9.123505,-37.156078],[-8.284314,-33.847615],[-6.762615,-30.296053],[-4.929275,-26.597678],[-3.177126,-22.351060],[-2.677906,-19.263947],[-2.269385,-15.180820],[-0.789336,-7.946157],[4.382784,-8.968106]]);
    linear_extrude(height=h)
      polygon([[7.071492,4.676494],[12.382649,7.481843],[18.809257,9.752427],[25.769760,11.245977],[32.682603,11.720225],[36.608943,11.255246],[40.344485,10.127455],[43.780301,8.530373],[46.807459,6.657520],[49.317029,4.702415],[51.200082,2.858579],[52.347686,1.319531],[52.650911,0.278792],[51.663566,-2.700264],[50.220422,-5.263821],[46.766864,-9.827586],[40.795772,-17.803108],[38.253868,-20.313790],[37.032400,-21.000405],[35.820523,-21.231886],[34.373976,-21.035694],[32.931334,-20.515024],[30.046049,-18.691471],[27.141234,-16.143676],[24.193455,-13.254084],[20.699292,-10.271715],[17.919059,-8.840007],[14.163765,-7.185742],[7.744418,-3.535702],[10.319505,1.064747]]);
    linear_extrude(height=h)
      polygon([[-1.573156,7.919078],[-2.405221,13.867691],[-2.355074,20.683431],[-1.392650,27.737015],[0.512117,34.399159],[2.284609,37.933370],[4.615507,41.062770],[7.285788,43.750727],[10.076426,45.960607],[12.768396,47.655777],[15.142674,48.799604],[16.980235,49.355454],[18.062054,49.286696],[20.527822,47.345143],[22.447852,45.116254],[25.565229,40.316573],[31.034937,31.989202],[32.531597,28.745005],[32.761922,27.362840],[32.567498,26.144463],[31.891094,24.850843],[30.910876,23.671234],[28.214844,21.578007],[24.831088,19.712698],[21.111294,17.923222],[17.118432,15.651466],[14.826603,13.523785],[11.993910,10.554835],[6.378458,5.759273],[2.927847,9.745312]]);
  }
}

poly_path4152(0.5);
poly_path42826(0.5);
